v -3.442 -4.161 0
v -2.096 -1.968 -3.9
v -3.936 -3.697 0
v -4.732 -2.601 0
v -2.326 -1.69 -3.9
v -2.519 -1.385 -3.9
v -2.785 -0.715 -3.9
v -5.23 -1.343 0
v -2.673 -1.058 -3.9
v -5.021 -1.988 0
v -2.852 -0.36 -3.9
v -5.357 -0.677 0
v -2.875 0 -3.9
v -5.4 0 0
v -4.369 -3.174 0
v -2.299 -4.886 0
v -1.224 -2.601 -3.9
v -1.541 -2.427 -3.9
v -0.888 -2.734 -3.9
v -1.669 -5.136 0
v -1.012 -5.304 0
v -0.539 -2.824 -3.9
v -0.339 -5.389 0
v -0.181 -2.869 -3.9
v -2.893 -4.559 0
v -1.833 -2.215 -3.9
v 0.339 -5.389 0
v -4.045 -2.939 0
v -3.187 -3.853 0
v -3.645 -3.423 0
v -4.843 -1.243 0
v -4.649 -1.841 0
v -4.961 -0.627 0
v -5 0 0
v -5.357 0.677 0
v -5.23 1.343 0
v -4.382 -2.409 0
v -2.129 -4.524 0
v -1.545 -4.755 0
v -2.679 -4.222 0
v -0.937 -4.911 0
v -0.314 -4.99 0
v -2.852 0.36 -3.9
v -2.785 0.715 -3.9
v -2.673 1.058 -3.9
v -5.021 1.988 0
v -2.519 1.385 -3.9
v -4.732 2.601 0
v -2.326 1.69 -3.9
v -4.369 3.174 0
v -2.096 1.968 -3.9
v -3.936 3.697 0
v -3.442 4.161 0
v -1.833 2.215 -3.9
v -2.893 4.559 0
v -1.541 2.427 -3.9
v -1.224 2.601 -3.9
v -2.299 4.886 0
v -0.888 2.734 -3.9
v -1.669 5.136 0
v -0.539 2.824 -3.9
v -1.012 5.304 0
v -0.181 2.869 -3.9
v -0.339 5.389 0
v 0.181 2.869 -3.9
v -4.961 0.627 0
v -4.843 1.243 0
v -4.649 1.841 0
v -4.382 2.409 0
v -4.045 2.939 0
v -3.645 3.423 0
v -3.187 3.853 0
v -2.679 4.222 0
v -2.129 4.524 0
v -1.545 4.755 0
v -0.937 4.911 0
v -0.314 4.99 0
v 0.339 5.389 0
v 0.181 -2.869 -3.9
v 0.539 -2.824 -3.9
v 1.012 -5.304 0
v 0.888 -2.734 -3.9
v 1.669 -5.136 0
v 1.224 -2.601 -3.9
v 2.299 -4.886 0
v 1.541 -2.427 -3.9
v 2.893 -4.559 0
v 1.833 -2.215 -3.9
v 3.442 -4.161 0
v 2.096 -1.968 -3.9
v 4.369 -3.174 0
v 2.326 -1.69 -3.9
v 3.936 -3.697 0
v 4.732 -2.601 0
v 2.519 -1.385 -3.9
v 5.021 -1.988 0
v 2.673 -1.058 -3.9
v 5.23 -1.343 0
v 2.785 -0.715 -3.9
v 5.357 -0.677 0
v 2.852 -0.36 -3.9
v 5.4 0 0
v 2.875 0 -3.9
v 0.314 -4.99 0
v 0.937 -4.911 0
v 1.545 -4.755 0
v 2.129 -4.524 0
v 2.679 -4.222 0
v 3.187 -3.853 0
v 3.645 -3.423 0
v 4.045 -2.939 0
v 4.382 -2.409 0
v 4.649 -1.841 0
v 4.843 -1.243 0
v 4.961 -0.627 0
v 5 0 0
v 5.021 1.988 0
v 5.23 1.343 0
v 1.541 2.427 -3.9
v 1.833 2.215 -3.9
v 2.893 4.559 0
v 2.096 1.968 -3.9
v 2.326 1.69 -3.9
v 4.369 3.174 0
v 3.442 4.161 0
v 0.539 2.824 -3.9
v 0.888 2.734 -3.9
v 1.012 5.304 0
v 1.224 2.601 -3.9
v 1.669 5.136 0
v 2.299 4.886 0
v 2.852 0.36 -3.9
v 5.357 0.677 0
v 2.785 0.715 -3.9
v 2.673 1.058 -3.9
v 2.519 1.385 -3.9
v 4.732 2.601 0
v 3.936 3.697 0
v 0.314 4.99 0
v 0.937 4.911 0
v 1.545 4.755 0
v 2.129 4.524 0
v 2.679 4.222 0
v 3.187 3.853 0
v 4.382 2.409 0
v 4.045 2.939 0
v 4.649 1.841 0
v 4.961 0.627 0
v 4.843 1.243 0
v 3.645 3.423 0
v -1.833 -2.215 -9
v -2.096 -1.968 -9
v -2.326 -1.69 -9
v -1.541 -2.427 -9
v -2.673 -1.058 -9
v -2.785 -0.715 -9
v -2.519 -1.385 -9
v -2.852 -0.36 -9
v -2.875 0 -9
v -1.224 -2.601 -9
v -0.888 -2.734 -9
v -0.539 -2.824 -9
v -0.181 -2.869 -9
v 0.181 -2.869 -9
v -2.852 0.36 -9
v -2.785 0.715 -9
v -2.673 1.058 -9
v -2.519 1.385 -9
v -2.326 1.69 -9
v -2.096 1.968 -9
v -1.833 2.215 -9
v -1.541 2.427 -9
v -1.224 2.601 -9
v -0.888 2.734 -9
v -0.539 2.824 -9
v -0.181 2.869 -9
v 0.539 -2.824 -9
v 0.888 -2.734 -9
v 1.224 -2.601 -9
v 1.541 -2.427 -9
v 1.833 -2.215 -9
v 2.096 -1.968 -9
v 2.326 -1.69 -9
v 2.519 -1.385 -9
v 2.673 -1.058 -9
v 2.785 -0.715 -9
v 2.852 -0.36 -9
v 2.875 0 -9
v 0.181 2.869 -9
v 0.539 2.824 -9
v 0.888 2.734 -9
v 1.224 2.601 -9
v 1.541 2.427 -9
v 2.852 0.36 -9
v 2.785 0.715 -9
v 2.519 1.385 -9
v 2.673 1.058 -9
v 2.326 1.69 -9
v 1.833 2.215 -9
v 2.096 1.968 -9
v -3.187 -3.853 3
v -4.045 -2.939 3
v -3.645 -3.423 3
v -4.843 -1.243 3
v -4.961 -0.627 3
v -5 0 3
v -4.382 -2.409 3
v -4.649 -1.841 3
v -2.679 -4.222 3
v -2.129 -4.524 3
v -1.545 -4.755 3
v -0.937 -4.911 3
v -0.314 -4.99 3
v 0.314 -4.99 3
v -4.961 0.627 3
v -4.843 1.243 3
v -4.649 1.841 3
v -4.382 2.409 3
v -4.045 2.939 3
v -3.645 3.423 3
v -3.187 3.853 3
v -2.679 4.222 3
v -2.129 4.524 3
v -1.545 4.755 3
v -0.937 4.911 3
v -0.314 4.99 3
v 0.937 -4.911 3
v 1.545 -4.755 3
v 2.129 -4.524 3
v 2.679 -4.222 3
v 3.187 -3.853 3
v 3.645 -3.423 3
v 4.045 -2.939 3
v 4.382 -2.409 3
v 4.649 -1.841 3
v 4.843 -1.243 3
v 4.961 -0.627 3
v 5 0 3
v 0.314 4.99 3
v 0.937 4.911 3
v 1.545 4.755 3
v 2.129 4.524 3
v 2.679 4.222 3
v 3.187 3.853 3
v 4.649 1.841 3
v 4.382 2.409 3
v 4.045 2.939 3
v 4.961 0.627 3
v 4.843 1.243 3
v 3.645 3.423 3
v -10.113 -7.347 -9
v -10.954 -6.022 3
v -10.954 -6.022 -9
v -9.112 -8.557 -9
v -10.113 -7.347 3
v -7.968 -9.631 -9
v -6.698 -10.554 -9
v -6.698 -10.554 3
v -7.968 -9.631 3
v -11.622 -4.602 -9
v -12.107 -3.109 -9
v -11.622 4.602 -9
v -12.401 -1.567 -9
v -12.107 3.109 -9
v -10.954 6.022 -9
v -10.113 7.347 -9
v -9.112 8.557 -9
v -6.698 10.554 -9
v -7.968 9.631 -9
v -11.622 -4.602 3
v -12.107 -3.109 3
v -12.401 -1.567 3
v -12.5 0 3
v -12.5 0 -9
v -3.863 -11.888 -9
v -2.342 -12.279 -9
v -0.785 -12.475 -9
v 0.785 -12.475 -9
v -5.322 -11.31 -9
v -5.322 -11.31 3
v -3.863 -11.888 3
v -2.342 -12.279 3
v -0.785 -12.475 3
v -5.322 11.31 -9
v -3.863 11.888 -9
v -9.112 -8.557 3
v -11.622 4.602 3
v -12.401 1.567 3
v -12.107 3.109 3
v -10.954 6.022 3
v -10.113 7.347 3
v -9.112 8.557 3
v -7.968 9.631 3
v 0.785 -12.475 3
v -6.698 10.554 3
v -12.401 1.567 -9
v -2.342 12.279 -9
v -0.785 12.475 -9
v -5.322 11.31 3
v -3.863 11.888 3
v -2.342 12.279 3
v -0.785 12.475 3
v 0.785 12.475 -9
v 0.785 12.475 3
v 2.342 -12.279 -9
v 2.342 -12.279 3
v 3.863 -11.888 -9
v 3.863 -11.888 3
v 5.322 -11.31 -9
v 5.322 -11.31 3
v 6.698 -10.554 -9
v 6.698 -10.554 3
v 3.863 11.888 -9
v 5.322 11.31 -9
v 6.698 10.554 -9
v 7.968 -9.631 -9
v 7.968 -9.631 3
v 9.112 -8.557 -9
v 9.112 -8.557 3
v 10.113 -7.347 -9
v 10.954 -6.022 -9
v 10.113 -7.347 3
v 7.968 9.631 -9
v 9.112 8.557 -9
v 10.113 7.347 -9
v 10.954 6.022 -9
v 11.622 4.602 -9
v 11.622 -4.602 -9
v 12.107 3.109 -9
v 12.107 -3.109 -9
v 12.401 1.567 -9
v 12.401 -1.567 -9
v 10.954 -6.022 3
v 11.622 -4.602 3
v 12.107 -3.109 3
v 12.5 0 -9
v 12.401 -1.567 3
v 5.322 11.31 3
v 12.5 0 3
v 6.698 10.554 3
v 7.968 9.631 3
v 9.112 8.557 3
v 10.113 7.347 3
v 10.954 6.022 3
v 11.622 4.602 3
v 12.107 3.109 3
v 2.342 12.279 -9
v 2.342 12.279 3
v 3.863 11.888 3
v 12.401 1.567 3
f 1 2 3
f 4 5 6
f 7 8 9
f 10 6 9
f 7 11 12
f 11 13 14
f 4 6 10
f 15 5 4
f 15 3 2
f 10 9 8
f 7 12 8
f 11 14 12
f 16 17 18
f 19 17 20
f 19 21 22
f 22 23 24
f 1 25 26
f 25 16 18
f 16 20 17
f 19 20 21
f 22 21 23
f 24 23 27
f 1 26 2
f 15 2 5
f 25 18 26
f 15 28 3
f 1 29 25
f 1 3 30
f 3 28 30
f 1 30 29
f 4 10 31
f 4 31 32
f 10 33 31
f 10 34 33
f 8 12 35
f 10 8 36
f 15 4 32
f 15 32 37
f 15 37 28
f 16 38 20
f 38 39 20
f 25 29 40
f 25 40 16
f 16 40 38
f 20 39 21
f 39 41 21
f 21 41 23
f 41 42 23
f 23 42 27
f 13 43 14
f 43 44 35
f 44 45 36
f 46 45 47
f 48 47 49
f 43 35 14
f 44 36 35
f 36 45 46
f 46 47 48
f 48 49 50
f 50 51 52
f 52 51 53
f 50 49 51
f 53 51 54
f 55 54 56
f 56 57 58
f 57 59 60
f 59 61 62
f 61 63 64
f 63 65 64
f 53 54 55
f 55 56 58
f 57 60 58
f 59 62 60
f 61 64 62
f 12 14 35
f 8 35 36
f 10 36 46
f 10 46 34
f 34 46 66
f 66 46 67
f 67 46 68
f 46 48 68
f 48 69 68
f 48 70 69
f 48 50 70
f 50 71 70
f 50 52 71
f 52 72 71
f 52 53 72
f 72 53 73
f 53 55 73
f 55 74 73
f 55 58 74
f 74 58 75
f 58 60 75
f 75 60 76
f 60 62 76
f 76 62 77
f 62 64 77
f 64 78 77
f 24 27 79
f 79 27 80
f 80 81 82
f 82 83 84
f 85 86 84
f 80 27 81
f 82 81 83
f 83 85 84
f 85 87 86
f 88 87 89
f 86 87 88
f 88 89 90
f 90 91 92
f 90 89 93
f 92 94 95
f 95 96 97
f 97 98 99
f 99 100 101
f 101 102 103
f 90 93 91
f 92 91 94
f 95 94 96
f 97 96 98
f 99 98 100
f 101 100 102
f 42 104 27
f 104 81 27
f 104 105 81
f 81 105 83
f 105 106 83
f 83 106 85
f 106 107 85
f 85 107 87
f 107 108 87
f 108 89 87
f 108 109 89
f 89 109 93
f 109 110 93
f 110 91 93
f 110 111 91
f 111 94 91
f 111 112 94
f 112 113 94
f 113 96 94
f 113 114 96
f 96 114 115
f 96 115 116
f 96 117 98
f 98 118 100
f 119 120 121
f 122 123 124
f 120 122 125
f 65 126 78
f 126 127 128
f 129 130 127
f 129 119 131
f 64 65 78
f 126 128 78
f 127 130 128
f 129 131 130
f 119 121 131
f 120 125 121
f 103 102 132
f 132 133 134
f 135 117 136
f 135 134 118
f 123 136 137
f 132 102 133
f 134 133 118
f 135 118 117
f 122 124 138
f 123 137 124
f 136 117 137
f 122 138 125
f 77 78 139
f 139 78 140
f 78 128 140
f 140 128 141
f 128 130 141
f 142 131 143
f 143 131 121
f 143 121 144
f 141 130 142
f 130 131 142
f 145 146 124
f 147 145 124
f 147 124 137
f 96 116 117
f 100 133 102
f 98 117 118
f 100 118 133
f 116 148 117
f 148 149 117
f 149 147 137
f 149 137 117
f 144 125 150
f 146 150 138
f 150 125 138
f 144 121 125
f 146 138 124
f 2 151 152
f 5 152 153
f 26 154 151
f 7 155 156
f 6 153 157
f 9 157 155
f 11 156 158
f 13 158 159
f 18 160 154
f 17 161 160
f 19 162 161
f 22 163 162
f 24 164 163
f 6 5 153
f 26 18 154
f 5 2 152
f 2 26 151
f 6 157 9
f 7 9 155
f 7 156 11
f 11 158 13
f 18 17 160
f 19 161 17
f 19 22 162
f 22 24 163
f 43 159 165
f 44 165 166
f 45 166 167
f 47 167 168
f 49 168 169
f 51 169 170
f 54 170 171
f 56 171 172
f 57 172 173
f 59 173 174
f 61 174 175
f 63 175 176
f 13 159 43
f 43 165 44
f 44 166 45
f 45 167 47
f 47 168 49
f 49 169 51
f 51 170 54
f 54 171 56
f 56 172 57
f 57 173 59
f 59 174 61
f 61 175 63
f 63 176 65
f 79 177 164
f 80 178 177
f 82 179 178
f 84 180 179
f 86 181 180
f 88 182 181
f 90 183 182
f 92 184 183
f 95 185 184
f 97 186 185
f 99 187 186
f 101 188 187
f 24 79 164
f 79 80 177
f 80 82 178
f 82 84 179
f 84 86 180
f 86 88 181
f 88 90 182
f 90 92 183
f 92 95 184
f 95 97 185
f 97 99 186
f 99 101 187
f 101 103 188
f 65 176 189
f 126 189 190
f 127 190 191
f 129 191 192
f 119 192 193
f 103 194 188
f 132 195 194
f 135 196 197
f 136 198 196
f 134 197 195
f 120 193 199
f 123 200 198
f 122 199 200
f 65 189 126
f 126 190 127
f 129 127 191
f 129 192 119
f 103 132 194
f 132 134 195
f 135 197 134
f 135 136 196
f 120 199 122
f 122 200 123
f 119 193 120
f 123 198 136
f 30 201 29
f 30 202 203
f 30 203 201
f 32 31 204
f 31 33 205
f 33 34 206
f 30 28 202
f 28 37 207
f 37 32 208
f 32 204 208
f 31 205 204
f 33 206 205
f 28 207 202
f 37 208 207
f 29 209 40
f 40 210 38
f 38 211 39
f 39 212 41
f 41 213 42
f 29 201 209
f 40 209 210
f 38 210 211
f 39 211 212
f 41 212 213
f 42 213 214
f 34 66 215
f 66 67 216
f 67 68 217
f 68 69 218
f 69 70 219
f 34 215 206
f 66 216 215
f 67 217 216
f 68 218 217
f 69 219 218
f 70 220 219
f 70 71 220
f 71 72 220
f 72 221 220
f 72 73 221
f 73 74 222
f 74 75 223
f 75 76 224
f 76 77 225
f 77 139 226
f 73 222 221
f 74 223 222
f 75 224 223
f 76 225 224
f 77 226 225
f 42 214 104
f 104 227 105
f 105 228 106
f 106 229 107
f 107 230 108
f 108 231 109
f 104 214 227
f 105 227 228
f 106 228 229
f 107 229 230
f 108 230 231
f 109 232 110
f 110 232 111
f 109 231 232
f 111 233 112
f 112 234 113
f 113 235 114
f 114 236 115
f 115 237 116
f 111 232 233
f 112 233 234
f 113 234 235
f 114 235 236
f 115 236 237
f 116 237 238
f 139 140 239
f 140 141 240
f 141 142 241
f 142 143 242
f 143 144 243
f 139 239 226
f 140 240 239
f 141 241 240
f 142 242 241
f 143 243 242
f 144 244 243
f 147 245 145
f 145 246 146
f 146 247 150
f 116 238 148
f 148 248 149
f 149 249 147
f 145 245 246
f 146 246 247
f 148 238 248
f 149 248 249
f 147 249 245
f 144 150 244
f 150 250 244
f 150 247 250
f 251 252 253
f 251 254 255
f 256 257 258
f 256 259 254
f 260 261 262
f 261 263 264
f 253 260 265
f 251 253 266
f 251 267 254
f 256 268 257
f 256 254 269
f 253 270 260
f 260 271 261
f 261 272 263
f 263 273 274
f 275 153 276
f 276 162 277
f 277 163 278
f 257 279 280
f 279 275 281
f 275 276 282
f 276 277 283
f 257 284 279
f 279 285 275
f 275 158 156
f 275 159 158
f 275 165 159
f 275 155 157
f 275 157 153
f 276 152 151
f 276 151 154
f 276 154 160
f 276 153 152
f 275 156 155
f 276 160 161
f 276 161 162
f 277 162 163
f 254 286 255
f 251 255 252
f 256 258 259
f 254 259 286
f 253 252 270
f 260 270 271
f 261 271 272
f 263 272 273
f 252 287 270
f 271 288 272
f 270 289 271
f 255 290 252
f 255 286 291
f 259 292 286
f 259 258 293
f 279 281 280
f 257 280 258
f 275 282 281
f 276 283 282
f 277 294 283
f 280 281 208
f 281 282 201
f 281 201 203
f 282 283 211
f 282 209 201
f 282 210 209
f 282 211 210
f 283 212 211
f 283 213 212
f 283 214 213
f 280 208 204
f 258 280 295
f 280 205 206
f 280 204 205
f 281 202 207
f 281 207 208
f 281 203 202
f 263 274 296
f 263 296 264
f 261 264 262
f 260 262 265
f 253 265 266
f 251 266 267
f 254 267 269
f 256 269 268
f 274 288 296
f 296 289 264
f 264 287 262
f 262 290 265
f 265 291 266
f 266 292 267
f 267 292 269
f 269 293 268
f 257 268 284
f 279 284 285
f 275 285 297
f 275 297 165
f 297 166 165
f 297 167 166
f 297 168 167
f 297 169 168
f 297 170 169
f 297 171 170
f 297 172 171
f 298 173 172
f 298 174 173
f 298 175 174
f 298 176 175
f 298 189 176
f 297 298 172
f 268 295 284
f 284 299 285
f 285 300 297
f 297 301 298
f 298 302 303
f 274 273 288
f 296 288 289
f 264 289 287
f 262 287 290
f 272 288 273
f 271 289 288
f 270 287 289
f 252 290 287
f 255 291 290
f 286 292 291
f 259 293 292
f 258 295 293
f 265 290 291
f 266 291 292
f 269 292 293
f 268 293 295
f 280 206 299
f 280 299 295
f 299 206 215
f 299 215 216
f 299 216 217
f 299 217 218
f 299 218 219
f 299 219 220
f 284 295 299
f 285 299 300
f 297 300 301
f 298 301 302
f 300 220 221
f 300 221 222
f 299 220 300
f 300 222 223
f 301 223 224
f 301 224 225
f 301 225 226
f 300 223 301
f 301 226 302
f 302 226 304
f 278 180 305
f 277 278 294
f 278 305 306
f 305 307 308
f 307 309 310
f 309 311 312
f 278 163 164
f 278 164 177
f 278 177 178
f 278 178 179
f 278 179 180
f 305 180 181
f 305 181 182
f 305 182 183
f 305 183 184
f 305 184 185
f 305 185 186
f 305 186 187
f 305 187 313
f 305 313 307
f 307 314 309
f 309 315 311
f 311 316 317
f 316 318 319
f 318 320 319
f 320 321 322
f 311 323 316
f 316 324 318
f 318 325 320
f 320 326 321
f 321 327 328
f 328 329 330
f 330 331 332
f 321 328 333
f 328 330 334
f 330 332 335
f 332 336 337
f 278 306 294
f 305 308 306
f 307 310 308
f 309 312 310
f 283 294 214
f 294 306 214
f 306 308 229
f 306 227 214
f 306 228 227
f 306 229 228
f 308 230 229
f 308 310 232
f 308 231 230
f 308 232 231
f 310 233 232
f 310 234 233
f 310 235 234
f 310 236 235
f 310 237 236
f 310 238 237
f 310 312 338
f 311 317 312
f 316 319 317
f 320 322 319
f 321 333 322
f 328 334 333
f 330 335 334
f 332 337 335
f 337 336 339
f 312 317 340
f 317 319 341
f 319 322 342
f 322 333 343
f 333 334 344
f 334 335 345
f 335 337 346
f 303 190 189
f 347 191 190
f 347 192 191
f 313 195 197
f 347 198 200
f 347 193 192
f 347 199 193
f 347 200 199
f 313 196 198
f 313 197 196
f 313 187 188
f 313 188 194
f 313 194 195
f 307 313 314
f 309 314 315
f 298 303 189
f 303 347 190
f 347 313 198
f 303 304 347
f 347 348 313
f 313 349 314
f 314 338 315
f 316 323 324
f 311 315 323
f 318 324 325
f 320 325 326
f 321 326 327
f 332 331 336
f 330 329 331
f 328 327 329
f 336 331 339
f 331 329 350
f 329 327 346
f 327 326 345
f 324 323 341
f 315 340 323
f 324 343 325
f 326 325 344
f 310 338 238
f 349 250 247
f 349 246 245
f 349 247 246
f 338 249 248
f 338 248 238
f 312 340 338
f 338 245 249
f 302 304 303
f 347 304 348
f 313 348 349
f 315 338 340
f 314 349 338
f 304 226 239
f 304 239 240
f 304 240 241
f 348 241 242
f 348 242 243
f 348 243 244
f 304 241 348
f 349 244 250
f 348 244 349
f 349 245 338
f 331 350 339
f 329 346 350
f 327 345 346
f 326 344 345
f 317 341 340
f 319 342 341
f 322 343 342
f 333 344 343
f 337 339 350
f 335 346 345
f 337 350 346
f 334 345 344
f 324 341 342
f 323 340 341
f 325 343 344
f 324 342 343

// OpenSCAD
$fn = 50;

difference() {
	union() {
		translate(v = [0, 0, -9.0]) {
			cylinder(h = 12, r = 12.5);
		}
	}
	union() {
		translate(v = [0, 0, 0]) {
			rotate(a = [0, 0, 0]) {
				difference() {
					union() {
						translate(v = [0, 0, -12.0]) {
							cylinder(h = 12, r = 2.6);
						}
						translate(v = [0, 0, -3.9]) {
							cylinder(h = 3.9, r1 = 2.875, r2 = 5.4);
						}
						translate(v = [0, 0, -12.0]) {
							cylinder(h = 12, r = 2.875);
						}
						translate(v = [0, 0, -12.0]) {
							cylinder(h = 12, r = 2.6);
						}
					}
					union();
				}
			}
		}
		#cylinder(h = 3, r = 5.0);
	}
}
